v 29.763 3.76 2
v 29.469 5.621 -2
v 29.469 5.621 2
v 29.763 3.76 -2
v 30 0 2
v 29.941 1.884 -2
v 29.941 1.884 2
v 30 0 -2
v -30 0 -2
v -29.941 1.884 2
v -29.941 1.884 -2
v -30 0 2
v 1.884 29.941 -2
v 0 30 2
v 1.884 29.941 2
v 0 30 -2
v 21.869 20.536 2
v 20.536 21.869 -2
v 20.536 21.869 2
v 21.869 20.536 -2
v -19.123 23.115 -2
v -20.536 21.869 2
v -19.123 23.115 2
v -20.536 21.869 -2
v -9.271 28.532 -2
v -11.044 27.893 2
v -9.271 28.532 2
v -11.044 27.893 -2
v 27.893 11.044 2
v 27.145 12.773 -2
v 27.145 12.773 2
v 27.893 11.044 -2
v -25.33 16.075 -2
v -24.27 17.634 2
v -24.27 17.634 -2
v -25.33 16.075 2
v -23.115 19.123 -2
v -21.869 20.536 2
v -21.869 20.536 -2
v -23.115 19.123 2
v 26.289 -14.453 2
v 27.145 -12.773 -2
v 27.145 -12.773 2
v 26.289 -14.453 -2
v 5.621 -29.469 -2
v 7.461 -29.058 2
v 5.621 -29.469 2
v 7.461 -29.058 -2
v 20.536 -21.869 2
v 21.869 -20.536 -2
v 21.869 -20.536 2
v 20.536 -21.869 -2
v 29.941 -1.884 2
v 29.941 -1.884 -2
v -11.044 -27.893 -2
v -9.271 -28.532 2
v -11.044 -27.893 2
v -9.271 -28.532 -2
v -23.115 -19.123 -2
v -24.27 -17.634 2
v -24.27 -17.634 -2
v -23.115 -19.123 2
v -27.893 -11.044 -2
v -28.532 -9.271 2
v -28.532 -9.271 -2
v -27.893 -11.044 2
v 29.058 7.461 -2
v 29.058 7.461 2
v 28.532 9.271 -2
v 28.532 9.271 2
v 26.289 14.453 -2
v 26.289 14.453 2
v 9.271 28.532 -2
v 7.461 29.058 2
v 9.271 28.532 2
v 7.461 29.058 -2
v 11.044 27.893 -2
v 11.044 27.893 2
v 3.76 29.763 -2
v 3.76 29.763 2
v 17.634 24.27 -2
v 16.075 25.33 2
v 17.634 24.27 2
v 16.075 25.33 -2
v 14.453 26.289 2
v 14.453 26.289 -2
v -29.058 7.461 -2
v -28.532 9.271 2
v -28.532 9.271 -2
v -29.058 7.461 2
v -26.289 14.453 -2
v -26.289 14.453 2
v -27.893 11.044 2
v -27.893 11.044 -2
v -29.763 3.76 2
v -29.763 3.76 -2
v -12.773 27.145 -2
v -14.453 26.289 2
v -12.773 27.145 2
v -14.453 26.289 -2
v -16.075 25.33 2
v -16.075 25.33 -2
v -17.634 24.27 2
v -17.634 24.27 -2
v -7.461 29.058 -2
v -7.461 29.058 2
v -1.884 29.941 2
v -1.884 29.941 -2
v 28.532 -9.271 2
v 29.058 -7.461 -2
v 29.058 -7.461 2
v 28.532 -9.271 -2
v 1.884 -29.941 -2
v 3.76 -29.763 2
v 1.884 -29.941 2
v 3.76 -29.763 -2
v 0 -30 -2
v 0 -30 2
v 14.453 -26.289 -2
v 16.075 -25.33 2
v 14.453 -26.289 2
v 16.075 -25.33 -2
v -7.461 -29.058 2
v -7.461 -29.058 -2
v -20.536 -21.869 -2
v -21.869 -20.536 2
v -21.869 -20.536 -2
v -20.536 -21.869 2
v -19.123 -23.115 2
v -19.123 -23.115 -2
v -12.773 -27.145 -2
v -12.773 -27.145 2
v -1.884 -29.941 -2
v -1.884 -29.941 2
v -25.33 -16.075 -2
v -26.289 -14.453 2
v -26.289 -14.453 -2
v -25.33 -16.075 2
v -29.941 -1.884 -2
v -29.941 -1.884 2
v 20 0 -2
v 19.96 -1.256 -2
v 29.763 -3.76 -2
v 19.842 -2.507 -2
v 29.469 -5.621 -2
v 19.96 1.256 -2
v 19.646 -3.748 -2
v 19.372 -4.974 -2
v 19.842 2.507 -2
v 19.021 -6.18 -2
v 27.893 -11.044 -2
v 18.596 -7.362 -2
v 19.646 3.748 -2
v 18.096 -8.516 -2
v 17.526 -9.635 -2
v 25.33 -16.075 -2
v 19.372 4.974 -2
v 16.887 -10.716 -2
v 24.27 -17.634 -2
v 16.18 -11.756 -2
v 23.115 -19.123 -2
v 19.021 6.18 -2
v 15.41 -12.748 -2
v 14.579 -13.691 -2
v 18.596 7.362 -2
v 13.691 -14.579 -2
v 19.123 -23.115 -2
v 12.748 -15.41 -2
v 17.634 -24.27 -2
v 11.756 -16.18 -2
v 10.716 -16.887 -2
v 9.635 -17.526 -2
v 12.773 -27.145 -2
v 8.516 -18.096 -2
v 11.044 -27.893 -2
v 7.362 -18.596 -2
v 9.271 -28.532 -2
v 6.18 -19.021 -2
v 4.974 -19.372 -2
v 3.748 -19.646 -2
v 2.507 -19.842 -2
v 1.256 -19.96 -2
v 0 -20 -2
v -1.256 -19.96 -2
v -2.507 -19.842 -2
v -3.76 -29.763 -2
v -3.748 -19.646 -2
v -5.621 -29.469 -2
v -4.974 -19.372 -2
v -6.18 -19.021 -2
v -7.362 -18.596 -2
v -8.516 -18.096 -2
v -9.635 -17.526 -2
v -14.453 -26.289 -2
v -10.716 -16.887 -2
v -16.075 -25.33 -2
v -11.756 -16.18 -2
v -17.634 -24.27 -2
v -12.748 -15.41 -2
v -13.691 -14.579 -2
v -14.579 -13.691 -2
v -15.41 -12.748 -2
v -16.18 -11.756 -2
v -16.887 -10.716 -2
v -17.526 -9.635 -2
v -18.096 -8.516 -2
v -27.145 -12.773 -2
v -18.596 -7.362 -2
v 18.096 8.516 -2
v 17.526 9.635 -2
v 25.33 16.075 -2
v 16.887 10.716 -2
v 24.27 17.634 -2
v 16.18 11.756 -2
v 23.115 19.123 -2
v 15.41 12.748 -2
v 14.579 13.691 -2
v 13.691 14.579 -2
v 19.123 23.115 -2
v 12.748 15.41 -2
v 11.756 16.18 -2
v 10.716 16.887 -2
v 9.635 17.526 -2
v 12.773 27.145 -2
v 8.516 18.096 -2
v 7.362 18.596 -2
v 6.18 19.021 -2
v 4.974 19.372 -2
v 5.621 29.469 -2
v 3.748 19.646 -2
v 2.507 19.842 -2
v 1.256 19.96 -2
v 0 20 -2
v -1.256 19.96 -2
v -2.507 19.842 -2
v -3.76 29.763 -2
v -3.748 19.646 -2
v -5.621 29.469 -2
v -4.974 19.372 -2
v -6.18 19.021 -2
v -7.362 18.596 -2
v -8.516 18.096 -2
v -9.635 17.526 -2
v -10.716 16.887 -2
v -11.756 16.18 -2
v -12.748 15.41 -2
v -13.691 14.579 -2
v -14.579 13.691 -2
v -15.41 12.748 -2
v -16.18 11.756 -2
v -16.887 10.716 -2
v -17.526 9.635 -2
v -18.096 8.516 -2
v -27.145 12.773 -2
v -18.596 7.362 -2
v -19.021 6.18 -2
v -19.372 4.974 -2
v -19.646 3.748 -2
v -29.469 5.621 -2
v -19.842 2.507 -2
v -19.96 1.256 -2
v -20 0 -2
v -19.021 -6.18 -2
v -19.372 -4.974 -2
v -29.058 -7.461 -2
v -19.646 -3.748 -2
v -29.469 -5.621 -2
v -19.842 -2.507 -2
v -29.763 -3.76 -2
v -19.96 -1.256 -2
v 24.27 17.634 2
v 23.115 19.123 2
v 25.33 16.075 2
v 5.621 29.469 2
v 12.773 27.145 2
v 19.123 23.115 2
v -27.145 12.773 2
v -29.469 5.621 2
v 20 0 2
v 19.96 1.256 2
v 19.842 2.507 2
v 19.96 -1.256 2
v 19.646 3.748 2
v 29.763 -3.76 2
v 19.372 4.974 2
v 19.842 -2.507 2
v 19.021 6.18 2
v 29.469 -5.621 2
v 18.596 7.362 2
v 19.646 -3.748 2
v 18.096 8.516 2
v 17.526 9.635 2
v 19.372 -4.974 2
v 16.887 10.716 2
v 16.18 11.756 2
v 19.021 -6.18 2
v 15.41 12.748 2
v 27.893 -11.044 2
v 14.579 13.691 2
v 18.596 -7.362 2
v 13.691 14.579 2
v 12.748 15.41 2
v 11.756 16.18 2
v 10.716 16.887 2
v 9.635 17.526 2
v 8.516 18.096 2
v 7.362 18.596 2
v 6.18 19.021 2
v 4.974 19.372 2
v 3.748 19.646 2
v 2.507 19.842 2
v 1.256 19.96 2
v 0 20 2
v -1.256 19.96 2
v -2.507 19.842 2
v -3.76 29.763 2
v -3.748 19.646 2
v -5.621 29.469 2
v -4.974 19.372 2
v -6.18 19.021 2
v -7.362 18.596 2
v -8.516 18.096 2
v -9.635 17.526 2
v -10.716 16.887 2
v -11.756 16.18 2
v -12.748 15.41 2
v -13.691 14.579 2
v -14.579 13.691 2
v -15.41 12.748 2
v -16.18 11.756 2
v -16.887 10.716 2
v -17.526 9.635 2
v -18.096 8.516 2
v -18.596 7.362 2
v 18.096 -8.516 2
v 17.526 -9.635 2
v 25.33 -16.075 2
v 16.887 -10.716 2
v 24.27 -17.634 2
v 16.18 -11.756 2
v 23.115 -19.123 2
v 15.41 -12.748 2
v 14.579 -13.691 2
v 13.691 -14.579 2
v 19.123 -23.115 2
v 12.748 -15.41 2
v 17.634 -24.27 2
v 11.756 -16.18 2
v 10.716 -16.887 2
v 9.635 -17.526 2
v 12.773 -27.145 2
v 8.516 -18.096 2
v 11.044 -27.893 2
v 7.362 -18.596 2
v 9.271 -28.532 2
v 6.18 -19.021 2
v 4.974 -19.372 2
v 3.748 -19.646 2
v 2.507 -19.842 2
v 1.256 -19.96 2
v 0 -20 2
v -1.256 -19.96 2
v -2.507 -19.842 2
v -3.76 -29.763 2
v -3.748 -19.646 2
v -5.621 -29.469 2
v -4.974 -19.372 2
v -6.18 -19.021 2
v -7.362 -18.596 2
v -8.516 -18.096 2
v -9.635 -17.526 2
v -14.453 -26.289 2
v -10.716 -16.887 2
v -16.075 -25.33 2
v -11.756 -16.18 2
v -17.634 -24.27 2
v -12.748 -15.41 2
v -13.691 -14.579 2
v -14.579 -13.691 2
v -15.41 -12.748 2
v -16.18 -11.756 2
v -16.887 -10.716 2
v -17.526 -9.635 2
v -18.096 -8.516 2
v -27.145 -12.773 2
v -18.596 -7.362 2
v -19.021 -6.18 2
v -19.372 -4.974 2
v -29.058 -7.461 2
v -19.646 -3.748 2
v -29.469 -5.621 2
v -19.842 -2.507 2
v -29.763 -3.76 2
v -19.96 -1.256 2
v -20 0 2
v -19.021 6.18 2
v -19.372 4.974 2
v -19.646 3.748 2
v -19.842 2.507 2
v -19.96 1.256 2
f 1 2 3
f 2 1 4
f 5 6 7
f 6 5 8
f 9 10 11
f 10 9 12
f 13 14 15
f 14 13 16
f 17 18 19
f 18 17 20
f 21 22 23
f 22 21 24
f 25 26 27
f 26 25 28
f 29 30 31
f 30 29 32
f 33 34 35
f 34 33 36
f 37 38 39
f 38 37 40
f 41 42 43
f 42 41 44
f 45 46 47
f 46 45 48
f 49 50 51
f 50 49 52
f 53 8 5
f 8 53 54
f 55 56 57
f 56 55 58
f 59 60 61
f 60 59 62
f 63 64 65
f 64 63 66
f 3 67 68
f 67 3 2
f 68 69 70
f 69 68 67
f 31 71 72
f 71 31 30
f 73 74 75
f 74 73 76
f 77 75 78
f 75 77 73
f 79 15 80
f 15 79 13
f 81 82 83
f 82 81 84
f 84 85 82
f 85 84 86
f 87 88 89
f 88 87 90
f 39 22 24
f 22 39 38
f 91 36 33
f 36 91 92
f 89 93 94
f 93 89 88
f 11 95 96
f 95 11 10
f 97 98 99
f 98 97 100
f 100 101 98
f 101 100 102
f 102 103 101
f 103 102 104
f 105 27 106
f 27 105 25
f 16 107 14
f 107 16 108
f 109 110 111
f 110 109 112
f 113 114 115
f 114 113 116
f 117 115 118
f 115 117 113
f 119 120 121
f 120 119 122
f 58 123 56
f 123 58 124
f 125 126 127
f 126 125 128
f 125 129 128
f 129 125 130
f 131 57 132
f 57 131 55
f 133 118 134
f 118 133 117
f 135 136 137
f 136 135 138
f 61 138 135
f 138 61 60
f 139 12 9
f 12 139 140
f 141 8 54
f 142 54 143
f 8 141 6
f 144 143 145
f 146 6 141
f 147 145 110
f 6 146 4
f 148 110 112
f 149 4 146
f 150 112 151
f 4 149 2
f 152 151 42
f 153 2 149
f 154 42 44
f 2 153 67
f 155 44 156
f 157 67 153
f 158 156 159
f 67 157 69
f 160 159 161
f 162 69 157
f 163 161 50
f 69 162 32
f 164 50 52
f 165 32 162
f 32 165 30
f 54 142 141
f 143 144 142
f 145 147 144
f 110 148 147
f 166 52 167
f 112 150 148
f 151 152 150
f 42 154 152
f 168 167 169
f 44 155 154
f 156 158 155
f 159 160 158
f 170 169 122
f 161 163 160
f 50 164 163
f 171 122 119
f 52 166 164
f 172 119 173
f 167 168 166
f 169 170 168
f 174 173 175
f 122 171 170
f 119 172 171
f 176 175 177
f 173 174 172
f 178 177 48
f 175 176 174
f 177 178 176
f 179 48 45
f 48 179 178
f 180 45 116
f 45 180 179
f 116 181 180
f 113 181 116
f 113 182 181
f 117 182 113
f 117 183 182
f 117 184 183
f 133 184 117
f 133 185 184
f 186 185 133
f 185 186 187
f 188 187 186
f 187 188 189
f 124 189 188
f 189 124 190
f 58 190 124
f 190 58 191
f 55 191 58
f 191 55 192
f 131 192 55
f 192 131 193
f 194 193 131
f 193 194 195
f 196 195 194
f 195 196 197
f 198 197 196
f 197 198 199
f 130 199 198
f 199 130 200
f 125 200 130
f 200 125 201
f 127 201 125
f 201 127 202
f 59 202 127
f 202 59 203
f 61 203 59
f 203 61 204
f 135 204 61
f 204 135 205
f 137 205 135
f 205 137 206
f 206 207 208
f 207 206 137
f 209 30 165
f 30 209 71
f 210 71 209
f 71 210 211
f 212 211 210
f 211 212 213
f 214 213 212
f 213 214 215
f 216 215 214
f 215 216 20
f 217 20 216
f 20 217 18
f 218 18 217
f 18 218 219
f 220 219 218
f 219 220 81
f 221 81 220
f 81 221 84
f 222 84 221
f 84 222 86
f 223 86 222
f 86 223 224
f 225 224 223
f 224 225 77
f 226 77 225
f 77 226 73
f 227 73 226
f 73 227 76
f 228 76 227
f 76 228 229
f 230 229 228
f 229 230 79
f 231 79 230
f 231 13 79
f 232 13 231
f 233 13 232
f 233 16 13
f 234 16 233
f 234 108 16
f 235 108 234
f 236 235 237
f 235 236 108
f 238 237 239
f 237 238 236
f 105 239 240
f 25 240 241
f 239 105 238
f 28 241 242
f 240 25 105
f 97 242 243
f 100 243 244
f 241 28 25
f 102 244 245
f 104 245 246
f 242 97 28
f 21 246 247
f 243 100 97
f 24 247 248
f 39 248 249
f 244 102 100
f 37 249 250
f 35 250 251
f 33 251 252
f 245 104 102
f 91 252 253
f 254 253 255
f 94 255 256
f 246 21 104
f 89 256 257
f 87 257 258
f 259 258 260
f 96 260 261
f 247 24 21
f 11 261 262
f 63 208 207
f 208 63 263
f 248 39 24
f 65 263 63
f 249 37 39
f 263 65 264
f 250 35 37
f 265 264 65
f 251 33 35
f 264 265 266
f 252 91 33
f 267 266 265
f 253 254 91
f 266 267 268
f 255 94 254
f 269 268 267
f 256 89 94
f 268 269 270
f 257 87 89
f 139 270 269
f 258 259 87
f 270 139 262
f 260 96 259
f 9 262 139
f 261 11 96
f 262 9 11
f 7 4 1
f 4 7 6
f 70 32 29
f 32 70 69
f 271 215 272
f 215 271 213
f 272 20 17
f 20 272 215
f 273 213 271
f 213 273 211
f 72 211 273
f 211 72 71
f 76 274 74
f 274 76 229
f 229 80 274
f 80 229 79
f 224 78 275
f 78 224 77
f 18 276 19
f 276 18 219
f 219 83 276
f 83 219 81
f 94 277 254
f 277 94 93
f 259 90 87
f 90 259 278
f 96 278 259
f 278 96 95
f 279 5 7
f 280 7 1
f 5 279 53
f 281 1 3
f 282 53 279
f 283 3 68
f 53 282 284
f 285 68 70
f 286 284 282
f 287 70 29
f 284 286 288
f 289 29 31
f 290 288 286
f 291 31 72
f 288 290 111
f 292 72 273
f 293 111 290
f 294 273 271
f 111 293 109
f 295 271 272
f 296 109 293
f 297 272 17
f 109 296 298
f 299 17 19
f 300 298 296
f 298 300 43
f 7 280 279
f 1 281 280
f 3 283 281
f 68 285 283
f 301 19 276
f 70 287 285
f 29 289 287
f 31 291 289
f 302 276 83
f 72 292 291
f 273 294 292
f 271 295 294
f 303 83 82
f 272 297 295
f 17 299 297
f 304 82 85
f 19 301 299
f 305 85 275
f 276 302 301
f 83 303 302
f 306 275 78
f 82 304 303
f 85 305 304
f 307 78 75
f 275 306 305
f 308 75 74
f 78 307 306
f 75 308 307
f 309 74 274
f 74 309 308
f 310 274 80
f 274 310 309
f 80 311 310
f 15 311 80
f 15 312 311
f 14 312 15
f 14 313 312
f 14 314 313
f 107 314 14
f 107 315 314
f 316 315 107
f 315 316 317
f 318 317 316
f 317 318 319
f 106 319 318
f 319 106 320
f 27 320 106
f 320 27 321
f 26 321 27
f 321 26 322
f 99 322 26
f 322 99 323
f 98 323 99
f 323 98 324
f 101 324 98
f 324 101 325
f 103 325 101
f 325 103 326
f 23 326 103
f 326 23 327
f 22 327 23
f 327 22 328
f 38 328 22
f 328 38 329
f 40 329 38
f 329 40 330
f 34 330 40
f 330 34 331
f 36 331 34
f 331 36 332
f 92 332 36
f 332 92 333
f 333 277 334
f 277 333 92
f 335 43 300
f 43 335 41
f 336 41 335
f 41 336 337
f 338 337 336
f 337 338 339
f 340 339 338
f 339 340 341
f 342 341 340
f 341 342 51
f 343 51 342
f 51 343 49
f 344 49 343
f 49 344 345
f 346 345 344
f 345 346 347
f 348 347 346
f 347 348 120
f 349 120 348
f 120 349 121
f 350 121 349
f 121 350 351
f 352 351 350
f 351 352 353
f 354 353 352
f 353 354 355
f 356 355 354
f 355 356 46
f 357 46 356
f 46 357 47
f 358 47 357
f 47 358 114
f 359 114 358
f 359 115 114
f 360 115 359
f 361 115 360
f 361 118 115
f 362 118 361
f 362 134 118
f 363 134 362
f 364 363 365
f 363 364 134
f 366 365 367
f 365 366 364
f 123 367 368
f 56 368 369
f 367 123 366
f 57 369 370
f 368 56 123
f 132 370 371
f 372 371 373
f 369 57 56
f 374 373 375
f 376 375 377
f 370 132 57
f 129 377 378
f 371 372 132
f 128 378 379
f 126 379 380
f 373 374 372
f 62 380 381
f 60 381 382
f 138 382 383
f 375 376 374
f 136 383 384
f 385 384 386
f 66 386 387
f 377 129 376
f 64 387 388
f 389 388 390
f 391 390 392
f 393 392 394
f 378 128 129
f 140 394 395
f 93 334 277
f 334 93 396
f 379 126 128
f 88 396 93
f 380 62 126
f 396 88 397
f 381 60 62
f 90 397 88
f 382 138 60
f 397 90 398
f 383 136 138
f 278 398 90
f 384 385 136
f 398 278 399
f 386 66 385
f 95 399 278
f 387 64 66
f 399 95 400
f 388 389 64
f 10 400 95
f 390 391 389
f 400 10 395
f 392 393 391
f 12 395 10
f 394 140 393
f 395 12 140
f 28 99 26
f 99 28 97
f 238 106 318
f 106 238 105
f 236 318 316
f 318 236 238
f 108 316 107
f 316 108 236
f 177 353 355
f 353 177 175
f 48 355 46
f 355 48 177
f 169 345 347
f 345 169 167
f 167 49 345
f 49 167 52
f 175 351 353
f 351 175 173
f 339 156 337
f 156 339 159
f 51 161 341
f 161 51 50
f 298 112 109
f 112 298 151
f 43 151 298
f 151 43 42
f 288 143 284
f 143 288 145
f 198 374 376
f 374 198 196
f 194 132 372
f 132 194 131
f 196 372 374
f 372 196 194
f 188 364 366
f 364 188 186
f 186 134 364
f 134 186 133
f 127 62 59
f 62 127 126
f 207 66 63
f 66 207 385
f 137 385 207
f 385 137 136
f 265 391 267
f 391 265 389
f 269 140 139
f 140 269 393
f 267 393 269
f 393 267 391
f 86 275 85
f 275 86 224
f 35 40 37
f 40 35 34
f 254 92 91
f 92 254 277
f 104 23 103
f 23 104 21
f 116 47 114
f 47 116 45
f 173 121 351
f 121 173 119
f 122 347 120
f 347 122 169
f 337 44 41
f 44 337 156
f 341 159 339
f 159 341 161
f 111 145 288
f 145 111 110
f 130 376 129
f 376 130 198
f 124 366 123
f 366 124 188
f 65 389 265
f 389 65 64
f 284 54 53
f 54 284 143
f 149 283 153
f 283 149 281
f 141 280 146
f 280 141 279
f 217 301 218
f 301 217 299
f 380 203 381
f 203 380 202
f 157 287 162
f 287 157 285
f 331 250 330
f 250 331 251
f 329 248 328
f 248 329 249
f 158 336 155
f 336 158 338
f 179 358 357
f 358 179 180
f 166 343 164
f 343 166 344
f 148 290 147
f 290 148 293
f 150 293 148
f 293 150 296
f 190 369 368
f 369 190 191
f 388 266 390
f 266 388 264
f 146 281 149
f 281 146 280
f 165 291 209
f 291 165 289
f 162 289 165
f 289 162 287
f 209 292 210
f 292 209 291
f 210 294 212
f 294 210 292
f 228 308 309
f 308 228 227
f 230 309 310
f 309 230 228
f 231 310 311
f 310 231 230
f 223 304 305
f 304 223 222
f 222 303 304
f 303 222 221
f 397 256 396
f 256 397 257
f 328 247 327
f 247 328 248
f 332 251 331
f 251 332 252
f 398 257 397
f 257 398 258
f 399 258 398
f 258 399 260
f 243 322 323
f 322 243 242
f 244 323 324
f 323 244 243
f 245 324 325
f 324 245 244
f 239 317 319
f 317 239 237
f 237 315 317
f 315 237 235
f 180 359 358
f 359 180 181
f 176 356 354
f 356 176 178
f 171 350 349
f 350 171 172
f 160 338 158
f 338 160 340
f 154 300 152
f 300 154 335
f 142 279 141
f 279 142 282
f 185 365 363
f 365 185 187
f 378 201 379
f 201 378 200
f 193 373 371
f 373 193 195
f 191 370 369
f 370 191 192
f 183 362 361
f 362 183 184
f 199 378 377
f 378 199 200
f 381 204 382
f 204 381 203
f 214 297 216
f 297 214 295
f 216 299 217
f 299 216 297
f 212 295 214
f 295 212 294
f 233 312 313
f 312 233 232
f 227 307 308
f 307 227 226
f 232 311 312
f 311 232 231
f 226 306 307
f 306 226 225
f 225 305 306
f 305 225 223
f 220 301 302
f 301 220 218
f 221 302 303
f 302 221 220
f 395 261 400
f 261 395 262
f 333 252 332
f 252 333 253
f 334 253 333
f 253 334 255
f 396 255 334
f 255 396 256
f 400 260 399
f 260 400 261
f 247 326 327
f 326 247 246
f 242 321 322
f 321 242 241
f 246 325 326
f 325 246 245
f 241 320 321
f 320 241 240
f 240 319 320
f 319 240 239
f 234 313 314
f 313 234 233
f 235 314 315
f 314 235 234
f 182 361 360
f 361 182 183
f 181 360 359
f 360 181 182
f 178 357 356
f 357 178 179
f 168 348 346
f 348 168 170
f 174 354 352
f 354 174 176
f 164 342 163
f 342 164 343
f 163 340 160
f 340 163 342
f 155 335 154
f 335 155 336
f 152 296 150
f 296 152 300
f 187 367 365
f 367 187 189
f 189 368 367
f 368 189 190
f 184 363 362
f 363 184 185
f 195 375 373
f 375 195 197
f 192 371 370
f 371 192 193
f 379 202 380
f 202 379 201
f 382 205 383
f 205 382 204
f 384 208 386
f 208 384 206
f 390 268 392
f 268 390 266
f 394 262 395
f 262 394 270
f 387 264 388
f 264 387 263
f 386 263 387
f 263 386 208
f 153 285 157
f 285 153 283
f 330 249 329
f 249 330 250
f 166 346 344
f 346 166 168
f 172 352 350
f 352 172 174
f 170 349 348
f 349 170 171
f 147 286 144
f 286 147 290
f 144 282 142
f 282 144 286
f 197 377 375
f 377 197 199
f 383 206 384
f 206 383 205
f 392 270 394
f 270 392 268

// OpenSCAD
Radio=30;
pared=10;
grueso=4;
difference(){
cylinder(r=Radio,$fn=100,center=true,h=grueso);
cylinder(r=Radio-pared,$fn=100,center=true,h=grueso*2);
       
}
